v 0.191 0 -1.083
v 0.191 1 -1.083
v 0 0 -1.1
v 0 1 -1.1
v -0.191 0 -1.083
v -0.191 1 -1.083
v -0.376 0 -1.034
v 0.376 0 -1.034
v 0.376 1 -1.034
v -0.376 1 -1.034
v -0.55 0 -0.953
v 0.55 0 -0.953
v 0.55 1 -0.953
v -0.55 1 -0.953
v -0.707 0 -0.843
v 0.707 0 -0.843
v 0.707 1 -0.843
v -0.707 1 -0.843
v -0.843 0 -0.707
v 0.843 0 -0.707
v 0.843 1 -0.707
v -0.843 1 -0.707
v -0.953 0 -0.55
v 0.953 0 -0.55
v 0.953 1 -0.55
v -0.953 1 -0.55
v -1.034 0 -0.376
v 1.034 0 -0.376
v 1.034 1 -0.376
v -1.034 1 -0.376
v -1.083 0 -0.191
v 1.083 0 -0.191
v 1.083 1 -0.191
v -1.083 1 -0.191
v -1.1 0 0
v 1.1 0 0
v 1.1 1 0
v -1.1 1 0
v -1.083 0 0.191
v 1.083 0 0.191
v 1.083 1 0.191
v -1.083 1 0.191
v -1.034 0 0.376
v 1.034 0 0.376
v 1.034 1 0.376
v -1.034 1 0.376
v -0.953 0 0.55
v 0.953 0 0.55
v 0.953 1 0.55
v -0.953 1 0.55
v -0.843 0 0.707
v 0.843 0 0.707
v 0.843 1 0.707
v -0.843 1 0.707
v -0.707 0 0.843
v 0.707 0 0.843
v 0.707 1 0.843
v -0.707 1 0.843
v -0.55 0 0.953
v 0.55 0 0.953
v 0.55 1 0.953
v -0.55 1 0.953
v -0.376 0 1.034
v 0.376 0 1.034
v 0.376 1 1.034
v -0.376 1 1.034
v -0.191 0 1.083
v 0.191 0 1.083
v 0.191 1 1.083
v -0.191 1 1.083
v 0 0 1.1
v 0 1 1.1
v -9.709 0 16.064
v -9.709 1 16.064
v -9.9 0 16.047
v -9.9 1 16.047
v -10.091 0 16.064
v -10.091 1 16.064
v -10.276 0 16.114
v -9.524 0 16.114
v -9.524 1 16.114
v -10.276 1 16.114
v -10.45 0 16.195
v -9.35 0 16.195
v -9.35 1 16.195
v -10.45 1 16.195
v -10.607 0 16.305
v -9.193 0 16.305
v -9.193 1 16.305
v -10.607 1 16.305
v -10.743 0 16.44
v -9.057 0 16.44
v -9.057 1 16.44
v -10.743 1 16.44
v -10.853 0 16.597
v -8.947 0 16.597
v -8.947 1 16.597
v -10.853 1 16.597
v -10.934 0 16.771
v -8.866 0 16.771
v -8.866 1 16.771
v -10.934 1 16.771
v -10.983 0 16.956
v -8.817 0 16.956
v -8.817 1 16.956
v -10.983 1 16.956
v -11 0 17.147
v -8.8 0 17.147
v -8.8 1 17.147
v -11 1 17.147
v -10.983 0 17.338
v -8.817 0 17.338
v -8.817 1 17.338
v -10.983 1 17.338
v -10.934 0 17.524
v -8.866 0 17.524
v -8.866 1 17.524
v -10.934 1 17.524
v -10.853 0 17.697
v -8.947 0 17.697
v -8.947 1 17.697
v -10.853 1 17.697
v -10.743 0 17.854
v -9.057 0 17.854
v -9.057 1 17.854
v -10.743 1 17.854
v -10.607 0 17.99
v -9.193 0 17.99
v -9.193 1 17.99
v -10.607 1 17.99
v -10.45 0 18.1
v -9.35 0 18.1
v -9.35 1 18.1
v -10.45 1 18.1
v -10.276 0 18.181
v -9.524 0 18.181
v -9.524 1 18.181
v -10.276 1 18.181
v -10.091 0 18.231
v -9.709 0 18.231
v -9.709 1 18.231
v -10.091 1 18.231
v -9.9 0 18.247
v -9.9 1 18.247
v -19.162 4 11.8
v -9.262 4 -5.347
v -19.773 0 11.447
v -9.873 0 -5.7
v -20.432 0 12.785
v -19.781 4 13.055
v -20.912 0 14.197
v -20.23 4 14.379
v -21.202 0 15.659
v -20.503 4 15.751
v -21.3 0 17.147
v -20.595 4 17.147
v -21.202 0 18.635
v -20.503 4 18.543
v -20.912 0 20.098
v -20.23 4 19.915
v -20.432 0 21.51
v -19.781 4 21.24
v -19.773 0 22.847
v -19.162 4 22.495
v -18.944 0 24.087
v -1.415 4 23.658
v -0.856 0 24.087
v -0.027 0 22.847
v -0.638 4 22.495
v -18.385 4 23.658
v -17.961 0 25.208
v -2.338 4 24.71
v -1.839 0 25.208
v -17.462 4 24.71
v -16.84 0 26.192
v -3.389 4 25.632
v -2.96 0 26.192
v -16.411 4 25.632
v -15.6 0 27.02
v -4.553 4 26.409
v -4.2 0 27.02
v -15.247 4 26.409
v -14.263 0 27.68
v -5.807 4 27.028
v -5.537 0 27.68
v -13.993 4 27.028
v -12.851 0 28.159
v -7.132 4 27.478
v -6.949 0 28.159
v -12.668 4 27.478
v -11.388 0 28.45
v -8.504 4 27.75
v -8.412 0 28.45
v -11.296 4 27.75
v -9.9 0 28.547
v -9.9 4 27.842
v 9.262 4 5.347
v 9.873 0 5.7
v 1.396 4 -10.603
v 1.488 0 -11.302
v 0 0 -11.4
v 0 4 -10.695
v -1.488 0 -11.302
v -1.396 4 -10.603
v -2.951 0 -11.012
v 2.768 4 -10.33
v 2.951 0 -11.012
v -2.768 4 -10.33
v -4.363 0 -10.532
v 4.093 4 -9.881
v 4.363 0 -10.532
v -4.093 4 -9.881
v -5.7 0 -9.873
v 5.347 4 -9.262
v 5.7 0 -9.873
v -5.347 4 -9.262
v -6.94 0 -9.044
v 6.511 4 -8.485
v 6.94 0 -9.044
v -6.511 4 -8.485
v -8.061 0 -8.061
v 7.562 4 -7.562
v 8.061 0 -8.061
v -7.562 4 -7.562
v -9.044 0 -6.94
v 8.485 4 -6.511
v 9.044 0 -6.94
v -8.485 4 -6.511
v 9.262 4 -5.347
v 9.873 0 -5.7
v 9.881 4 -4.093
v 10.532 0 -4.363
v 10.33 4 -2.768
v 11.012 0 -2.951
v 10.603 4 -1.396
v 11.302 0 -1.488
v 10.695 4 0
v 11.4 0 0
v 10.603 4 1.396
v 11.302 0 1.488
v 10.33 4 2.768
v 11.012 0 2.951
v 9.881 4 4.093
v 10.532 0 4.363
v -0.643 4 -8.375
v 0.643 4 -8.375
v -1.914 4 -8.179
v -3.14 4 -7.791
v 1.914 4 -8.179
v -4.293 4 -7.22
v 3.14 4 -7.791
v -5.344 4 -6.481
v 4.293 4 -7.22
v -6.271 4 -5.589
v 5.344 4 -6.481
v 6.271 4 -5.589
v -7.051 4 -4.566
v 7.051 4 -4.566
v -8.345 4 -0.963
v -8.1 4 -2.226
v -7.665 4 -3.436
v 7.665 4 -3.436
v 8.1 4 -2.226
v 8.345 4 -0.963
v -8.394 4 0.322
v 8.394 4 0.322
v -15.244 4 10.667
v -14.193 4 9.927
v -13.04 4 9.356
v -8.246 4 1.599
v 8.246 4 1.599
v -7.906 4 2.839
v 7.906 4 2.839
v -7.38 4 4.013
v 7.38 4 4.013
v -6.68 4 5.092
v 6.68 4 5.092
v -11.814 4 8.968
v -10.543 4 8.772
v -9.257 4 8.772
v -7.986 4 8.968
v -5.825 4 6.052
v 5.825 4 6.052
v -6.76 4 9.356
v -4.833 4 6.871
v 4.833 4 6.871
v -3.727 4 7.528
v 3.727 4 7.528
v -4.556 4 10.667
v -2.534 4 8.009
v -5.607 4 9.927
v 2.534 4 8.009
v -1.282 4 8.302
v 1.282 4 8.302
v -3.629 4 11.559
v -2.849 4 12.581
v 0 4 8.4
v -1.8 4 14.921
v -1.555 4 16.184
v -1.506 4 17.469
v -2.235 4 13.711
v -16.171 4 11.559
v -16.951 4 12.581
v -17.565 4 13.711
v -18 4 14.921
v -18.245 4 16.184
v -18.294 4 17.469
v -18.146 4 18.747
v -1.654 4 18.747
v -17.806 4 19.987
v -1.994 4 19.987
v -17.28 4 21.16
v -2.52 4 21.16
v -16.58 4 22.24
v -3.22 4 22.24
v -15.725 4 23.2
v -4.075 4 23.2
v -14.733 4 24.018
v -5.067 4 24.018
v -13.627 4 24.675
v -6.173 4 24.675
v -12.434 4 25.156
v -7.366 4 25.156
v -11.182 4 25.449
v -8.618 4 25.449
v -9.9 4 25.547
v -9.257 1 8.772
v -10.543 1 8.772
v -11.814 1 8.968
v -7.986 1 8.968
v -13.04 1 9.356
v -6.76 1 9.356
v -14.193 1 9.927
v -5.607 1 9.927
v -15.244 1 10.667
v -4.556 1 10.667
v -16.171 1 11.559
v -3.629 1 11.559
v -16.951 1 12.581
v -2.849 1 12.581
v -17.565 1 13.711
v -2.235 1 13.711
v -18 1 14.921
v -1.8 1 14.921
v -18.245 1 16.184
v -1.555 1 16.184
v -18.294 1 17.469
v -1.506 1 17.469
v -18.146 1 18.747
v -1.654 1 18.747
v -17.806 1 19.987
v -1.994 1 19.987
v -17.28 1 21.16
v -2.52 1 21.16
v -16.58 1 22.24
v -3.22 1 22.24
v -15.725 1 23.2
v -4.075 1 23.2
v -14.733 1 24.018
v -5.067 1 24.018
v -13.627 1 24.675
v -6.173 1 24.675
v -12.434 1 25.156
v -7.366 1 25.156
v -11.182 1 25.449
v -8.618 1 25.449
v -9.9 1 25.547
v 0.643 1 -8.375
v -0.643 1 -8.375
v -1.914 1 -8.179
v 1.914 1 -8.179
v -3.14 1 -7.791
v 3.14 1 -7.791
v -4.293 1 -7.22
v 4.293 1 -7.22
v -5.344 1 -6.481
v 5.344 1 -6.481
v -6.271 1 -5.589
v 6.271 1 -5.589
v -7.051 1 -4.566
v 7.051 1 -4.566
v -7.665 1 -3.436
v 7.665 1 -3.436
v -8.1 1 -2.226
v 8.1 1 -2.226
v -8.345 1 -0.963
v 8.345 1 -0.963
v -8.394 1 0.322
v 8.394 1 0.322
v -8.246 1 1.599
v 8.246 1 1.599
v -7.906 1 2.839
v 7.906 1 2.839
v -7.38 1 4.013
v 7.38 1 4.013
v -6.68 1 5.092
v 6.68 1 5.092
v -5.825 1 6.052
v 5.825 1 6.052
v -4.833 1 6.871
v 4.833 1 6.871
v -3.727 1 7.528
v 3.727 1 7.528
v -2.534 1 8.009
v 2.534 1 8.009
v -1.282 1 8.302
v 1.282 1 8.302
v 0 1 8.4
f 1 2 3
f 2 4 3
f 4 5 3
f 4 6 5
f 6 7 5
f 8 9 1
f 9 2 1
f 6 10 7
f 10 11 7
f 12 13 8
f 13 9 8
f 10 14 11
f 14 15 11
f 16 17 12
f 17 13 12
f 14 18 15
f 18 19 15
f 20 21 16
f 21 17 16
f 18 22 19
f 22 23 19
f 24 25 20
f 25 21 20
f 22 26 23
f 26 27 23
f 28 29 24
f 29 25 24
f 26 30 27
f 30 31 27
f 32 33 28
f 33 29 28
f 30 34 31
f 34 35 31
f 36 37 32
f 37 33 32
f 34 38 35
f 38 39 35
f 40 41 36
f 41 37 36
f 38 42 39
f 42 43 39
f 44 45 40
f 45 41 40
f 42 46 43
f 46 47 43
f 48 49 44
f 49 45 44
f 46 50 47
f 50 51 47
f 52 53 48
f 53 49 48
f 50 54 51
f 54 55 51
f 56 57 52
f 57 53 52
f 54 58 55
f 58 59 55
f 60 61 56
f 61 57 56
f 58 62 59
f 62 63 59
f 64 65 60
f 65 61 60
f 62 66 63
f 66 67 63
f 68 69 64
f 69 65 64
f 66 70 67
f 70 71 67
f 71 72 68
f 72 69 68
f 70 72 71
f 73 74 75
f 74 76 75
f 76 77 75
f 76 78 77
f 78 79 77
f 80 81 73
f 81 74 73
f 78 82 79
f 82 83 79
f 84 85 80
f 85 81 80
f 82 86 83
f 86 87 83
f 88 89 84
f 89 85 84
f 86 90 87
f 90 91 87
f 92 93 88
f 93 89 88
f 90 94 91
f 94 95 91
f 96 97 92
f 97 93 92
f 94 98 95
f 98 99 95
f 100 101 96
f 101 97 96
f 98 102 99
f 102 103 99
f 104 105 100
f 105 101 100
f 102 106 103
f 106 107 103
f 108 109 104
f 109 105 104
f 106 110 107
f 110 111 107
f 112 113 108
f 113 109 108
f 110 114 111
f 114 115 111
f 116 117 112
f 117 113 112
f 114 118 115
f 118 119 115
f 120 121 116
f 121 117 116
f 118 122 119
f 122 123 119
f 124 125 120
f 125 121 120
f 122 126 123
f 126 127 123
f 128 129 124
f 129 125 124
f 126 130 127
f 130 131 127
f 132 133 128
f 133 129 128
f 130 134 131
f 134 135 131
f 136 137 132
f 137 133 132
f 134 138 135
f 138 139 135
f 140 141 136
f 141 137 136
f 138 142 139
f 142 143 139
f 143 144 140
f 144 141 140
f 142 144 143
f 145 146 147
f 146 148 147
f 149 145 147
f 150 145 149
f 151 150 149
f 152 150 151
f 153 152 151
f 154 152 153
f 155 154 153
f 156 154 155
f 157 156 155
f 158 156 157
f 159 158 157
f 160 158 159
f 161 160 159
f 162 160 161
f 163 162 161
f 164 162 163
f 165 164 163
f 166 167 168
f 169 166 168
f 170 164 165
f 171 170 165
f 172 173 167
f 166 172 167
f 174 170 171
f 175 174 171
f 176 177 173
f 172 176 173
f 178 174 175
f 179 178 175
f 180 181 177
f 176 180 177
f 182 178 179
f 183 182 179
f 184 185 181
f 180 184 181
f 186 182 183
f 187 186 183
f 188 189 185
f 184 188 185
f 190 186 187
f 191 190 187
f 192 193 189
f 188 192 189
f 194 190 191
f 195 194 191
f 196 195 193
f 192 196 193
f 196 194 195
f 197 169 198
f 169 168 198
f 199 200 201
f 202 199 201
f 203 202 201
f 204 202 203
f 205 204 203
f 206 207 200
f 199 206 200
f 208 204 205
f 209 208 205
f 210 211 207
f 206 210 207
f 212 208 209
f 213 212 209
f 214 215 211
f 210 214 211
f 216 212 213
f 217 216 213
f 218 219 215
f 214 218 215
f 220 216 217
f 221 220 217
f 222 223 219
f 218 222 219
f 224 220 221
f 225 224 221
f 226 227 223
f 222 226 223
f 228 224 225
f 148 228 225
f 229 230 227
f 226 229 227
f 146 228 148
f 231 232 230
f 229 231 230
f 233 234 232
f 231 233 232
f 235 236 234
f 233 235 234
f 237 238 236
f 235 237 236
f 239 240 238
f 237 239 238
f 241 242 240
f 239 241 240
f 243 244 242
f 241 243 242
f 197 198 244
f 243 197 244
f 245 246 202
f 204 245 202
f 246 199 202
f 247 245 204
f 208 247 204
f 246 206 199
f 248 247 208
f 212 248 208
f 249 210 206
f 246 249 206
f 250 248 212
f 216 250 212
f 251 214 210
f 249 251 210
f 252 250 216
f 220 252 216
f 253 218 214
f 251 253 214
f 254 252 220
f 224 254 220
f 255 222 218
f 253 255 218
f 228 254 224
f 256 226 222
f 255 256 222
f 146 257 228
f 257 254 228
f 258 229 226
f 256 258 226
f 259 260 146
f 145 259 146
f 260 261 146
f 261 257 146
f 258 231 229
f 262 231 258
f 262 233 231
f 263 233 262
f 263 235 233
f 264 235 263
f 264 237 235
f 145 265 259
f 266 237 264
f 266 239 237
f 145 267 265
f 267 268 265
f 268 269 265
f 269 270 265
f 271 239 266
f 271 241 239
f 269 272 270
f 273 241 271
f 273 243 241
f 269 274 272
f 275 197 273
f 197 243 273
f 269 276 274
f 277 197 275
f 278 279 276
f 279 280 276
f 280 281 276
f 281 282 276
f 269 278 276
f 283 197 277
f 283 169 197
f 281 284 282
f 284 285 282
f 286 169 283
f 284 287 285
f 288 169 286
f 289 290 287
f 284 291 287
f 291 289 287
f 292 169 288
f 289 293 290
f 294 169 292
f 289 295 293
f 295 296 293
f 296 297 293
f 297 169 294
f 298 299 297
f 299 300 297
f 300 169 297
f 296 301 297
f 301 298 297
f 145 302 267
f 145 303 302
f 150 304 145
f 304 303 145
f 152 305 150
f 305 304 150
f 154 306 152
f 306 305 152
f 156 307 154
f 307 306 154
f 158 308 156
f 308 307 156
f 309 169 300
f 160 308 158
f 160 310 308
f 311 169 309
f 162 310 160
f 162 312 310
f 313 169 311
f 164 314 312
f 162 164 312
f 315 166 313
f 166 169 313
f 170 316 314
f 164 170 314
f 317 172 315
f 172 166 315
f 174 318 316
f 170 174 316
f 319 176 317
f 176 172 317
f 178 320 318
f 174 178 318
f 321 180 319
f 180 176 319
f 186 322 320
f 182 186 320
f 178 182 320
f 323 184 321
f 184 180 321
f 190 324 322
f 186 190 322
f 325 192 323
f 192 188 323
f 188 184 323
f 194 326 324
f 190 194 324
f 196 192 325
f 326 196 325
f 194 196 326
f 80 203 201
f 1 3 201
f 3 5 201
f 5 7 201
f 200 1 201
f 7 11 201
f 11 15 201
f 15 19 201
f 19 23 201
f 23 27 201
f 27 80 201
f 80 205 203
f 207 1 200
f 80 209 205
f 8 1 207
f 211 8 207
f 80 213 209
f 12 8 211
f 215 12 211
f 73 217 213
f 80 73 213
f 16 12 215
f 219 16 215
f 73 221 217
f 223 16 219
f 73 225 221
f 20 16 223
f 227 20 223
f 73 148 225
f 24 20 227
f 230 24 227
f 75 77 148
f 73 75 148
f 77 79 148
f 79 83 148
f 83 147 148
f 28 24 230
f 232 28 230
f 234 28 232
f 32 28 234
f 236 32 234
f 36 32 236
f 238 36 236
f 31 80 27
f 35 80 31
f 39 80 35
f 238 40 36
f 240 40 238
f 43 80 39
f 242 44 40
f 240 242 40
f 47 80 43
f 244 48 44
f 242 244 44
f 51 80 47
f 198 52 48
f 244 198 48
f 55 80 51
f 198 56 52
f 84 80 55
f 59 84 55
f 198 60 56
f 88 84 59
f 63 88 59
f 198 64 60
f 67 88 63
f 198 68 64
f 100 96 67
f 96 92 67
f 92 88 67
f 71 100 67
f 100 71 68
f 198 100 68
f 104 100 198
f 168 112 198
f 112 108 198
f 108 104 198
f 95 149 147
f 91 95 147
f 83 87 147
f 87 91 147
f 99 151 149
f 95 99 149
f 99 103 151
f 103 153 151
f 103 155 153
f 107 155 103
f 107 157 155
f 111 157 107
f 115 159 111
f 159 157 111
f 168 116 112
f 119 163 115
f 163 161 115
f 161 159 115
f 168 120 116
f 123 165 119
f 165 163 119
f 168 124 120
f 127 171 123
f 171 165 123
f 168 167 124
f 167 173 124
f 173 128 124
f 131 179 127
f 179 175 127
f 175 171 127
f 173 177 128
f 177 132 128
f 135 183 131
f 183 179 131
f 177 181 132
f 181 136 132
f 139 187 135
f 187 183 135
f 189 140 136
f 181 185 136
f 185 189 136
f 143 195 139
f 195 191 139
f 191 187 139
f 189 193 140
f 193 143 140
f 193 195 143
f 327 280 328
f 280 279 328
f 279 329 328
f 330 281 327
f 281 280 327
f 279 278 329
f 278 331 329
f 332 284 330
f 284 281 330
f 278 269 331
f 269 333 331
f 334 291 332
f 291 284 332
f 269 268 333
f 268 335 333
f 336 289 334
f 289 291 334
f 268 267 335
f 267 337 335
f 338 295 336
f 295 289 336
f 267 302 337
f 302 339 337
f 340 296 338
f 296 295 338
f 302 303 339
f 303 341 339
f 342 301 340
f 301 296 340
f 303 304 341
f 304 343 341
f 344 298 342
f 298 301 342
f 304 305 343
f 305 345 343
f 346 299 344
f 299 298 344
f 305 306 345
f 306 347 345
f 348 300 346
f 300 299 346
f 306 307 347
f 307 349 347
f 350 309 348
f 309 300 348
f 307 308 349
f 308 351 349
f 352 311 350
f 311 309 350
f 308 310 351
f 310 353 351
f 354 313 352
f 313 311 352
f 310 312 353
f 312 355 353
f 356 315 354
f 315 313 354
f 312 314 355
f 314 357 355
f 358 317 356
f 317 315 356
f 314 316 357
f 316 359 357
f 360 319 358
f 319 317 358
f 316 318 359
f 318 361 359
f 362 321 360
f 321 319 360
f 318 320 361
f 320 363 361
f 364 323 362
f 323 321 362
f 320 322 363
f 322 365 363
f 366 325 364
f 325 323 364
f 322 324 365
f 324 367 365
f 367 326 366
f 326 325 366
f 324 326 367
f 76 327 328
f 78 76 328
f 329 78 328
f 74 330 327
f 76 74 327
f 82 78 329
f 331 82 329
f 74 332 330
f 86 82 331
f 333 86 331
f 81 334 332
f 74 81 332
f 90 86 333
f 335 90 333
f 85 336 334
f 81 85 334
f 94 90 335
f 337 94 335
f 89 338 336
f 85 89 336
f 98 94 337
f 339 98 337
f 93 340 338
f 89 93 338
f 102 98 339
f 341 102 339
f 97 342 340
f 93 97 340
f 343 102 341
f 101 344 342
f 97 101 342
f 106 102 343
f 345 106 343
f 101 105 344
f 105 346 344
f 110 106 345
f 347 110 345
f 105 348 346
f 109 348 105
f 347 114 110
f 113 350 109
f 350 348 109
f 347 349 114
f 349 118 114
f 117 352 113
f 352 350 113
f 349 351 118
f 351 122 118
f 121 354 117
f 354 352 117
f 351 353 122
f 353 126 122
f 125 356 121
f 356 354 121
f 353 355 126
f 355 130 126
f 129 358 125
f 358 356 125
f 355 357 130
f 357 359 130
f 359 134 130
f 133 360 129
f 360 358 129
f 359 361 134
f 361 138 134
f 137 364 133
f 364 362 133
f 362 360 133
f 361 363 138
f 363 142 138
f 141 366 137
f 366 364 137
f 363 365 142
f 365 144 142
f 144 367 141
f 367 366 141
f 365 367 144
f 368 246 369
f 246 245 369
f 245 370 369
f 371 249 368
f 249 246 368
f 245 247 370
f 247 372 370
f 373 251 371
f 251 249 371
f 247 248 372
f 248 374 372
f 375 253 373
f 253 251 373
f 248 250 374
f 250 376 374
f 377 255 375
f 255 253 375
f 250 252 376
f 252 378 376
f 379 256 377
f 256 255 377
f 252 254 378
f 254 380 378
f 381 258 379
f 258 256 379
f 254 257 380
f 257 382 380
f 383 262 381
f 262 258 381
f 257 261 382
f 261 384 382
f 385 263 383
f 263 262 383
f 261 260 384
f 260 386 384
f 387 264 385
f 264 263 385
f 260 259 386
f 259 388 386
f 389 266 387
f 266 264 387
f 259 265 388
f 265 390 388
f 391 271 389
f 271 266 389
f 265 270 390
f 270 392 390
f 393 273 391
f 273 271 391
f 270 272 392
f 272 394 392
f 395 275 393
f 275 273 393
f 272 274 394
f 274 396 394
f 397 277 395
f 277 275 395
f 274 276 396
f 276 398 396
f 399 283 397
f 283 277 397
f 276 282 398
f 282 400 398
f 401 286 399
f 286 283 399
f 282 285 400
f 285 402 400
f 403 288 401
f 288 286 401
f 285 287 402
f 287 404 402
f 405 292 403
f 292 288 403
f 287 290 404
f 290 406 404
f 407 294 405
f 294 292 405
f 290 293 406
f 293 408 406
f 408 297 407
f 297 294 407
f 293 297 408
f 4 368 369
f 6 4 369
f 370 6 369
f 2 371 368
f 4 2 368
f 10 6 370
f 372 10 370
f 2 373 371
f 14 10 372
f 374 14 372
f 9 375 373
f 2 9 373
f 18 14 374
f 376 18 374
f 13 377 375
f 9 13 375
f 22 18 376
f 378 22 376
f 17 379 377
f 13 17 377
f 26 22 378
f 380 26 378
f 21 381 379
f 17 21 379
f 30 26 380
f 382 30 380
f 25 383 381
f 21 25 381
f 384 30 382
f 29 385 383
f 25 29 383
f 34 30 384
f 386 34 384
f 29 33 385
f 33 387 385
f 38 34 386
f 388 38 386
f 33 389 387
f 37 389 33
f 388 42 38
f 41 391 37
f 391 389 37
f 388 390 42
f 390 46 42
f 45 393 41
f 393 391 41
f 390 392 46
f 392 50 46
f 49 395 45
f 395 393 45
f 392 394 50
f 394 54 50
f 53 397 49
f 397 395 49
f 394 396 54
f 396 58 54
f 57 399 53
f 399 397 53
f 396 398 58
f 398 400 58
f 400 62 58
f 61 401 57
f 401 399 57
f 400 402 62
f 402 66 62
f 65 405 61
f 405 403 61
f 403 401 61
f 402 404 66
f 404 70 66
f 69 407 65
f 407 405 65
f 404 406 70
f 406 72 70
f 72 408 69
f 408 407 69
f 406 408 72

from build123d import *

# Parameters (mm, degrees)
BOSS_EXTRUDE1_DEPTH = 4
BOSS_EXTRUDE1_TAPER = 10
CUT_EXTRUDE1_START  = 4
SKETCH1_3_R         = 1.1
CUT_EXTRUDE1_DEPTH  = 4
CUT_EXTRUDE2_START  = 4
SKETCH1_4_R         = 8.4
CUT_EXTRUDE2_DEPTH  = 3


with BuildPart() as part:
    # Sketch1 → Boss-Extrude1 (new body)
    with BuildSketch(Plane(origin=(0, 0, 0), x_dir=(1, 0, 0), z_dir=(0, 1, 0))):
        with BuildLine():
            ThreePointArc((-19.772689603, -11.447302995), (-15.6, -27.019992598), (-0.027310397, -22.847302995))
            Line((-0.027310397, -22.847302995), (9.872689603, -5.7))
            ThreePointArc((9.872689603, -5.7), (5.7, 9.872689603), (-9.872689603, 5.7))
            Line((-9.872689603, 5.7), (-19.772689603, -11.447302995))
        make_face()
    extrude(amount=BOSS_EXTRUDE1_DEPTH, taper=BOSS_EXTRUDE1_TAPER)

    # Sketch1<3> → Cut-Extrude1 (cut)
    with BuildSketch(Plane(origin=(0, 0, 0), x_dir=(1, 0, 0), z_dir=(0, 1, 0)).offset(CUT_EXTRUDE1_START)):
        with Locations(Location((-9.9, -17.147302995, 0), (0, 0, 270))):
            Circle(SKETCH1_3_R)
        with Locations(Location((0, 0, 0), (0, 0, 270))):
            Circle(SKETCH1_3_R)
    extrude(amount=-CUT_EXTRUDE1_DEPTH, mode=Mode.SUBTRACT)

    # Sketch1<4> → Cut-Extrude2 (cut)
    with BuildSketch(Plane(origin=(0, 0, 0), x_dir=(1, 0, 0), z_dir=(0, 1, 0)).offset(CUT_EXTRUDE2_START)):
        with Locations(Location((0, 0, 0), (0, 0, 270))):
            Circle(SKETCH1_4_R)
        with Locations(Location((-9.9, -17.147302995, 0), (0, 0, 270))):
            Circle(SKETCH1_4_R)
    extrude(amount=-CUT_EXTRUDE2_DEPTH, mode=Mode.SUBTRACT)


solid = part.part
